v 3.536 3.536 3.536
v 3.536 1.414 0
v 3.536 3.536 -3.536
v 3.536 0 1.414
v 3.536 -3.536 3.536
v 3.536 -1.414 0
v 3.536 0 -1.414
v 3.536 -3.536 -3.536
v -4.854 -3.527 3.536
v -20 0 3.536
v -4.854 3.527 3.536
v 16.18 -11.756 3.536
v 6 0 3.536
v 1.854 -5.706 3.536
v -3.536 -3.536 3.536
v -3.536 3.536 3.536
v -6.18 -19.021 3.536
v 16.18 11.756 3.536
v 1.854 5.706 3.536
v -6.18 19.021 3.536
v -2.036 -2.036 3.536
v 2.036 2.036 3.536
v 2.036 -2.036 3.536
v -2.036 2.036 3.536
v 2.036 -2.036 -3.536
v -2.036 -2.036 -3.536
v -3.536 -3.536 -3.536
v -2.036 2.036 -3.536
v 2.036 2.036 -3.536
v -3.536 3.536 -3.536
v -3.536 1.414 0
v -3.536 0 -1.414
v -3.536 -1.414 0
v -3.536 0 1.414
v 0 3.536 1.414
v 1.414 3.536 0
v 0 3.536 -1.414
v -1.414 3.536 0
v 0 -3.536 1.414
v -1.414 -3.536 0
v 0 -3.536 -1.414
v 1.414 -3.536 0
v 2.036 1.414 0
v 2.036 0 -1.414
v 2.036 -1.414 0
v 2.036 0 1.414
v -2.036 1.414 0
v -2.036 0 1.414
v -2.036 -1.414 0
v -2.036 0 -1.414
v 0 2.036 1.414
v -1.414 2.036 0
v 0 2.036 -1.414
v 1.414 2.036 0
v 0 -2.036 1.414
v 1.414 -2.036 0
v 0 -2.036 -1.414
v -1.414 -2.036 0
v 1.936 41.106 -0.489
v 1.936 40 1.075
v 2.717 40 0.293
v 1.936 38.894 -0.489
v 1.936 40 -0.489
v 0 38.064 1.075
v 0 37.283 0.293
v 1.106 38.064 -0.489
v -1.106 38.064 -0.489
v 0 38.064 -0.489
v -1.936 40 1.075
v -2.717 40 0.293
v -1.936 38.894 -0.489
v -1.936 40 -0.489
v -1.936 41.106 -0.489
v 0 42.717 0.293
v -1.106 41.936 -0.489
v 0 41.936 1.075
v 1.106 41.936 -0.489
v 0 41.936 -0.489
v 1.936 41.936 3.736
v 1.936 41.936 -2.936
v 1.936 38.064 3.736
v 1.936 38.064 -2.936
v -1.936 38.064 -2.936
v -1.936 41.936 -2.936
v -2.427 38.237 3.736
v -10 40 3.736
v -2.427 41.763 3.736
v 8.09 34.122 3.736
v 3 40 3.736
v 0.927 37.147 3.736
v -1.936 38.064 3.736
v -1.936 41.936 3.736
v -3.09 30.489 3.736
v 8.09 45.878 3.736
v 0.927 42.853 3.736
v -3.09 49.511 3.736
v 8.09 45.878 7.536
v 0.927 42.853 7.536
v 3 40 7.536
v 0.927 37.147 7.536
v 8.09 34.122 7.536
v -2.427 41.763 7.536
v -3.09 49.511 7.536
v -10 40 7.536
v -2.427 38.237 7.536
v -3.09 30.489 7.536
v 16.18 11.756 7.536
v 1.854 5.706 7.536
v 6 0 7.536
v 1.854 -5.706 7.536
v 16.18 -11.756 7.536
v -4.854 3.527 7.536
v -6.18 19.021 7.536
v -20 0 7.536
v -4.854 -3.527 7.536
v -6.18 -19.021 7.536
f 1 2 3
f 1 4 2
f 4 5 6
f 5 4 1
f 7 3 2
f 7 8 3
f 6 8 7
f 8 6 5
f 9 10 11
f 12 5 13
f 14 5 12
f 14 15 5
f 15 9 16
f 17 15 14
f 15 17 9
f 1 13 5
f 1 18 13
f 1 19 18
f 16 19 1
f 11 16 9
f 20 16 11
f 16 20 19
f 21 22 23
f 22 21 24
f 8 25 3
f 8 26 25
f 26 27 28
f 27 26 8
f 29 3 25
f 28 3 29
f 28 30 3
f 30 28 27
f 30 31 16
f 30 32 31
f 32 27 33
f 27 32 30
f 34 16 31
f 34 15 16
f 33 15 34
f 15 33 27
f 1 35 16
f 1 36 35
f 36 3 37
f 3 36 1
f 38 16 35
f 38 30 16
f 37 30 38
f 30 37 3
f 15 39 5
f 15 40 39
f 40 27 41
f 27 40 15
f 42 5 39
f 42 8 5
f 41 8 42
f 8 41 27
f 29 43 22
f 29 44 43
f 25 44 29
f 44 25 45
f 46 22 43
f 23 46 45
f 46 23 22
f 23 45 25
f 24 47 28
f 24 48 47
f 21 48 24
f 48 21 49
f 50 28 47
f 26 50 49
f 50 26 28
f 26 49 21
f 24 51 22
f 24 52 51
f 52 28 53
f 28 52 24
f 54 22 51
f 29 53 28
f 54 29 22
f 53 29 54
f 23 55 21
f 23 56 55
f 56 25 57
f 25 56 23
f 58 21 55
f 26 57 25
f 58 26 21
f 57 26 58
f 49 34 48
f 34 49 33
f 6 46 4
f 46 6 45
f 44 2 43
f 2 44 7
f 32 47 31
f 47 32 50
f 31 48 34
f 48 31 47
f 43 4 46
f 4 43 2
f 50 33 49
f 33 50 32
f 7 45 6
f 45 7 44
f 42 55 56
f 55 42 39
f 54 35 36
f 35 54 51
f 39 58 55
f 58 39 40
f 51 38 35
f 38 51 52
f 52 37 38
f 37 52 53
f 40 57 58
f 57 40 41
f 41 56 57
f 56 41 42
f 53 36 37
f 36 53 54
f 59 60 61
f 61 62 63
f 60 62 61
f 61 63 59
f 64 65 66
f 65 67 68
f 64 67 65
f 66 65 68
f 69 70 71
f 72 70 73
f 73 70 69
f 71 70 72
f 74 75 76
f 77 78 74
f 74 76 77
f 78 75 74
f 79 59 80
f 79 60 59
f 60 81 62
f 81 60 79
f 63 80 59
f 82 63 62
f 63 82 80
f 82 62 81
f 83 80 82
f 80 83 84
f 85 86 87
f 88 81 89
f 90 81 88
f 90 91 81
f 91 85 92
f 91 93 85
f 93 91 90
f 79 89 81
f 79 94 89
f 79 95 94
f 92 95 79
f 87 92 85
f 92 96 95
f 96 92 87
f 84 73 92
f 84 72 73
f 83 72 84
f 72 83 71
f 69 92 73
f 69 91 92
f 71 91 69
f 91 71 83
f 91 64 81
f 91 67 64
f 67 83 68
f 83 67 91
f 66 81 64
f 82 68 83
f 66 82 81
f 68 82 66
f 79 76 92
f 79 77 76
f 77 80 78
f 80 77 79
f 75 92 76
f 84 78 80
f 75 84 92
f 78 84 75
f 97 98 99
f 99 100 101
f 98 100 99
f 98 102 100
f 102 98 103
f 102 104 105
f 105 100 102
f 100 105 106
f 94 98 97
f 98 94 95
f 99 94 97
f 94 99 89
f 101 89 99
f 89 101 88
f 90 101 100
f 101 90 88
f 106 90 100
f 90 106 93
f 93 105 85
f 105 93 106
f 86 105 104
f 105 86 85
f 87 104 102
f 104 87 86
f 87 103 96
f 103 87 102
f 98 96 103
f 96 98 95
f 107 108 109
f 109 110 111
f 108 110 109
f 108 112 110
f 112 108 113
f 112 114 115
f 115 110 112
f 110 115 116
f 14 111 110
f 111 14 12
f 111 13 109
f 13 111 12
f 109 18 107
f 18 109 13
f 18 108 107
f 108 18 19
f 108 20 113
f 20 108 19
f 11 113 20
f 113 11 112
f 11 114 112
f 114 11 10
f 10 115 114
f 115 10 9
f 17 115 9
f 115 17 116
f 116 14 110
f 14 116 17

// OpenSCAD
scale([2,2,2])
union(){
    max_width = 5/sqrt(2);

    //  Main part
    r_big = 10;
    r_small = 3;

    points = [for(i=[0: 1: 9]) [i%2? cos(36*i)*r_big : cos(36*i)*r_small, i%2? sin(36*i)*r_big : sin(36*i)*r_small]];
    translate([0,0,max_width/2])
    linear_extrude(2)
    polygon(points);

    difference(){
        cube([max_width, max_width, max_width], center = true);
        cube([max_width-1.5, max_width-1.5, max_width], center = true);
        
        rotate([45, 0, 0])
        cube([max_width, 1, 1], center = true);
        rotate([45, 0, 90])
        cube([max_width, 1, 1], center = true);
    }

    translate([0, 20, 0])
        rotate([180, 0, 0])
    union(){
        translate([0, 0, -0.2])
        cube([max_width-1.6, max_width-1.6, max_width-0.2], center = true);
        
        for(i = [0:3]){
            rotate([0, 0, 90*i])
            translate([max_width/7, 0, 0])
            rotate([45, -45, 0])
            cube([1, 1, 1], center = true);
        }

        scale([0.5, 0.5, 1])
        translate([0, 0, -max_width/2-2])
        linear_extrude(2-0.1) 
            polygon(points);
    }
}
